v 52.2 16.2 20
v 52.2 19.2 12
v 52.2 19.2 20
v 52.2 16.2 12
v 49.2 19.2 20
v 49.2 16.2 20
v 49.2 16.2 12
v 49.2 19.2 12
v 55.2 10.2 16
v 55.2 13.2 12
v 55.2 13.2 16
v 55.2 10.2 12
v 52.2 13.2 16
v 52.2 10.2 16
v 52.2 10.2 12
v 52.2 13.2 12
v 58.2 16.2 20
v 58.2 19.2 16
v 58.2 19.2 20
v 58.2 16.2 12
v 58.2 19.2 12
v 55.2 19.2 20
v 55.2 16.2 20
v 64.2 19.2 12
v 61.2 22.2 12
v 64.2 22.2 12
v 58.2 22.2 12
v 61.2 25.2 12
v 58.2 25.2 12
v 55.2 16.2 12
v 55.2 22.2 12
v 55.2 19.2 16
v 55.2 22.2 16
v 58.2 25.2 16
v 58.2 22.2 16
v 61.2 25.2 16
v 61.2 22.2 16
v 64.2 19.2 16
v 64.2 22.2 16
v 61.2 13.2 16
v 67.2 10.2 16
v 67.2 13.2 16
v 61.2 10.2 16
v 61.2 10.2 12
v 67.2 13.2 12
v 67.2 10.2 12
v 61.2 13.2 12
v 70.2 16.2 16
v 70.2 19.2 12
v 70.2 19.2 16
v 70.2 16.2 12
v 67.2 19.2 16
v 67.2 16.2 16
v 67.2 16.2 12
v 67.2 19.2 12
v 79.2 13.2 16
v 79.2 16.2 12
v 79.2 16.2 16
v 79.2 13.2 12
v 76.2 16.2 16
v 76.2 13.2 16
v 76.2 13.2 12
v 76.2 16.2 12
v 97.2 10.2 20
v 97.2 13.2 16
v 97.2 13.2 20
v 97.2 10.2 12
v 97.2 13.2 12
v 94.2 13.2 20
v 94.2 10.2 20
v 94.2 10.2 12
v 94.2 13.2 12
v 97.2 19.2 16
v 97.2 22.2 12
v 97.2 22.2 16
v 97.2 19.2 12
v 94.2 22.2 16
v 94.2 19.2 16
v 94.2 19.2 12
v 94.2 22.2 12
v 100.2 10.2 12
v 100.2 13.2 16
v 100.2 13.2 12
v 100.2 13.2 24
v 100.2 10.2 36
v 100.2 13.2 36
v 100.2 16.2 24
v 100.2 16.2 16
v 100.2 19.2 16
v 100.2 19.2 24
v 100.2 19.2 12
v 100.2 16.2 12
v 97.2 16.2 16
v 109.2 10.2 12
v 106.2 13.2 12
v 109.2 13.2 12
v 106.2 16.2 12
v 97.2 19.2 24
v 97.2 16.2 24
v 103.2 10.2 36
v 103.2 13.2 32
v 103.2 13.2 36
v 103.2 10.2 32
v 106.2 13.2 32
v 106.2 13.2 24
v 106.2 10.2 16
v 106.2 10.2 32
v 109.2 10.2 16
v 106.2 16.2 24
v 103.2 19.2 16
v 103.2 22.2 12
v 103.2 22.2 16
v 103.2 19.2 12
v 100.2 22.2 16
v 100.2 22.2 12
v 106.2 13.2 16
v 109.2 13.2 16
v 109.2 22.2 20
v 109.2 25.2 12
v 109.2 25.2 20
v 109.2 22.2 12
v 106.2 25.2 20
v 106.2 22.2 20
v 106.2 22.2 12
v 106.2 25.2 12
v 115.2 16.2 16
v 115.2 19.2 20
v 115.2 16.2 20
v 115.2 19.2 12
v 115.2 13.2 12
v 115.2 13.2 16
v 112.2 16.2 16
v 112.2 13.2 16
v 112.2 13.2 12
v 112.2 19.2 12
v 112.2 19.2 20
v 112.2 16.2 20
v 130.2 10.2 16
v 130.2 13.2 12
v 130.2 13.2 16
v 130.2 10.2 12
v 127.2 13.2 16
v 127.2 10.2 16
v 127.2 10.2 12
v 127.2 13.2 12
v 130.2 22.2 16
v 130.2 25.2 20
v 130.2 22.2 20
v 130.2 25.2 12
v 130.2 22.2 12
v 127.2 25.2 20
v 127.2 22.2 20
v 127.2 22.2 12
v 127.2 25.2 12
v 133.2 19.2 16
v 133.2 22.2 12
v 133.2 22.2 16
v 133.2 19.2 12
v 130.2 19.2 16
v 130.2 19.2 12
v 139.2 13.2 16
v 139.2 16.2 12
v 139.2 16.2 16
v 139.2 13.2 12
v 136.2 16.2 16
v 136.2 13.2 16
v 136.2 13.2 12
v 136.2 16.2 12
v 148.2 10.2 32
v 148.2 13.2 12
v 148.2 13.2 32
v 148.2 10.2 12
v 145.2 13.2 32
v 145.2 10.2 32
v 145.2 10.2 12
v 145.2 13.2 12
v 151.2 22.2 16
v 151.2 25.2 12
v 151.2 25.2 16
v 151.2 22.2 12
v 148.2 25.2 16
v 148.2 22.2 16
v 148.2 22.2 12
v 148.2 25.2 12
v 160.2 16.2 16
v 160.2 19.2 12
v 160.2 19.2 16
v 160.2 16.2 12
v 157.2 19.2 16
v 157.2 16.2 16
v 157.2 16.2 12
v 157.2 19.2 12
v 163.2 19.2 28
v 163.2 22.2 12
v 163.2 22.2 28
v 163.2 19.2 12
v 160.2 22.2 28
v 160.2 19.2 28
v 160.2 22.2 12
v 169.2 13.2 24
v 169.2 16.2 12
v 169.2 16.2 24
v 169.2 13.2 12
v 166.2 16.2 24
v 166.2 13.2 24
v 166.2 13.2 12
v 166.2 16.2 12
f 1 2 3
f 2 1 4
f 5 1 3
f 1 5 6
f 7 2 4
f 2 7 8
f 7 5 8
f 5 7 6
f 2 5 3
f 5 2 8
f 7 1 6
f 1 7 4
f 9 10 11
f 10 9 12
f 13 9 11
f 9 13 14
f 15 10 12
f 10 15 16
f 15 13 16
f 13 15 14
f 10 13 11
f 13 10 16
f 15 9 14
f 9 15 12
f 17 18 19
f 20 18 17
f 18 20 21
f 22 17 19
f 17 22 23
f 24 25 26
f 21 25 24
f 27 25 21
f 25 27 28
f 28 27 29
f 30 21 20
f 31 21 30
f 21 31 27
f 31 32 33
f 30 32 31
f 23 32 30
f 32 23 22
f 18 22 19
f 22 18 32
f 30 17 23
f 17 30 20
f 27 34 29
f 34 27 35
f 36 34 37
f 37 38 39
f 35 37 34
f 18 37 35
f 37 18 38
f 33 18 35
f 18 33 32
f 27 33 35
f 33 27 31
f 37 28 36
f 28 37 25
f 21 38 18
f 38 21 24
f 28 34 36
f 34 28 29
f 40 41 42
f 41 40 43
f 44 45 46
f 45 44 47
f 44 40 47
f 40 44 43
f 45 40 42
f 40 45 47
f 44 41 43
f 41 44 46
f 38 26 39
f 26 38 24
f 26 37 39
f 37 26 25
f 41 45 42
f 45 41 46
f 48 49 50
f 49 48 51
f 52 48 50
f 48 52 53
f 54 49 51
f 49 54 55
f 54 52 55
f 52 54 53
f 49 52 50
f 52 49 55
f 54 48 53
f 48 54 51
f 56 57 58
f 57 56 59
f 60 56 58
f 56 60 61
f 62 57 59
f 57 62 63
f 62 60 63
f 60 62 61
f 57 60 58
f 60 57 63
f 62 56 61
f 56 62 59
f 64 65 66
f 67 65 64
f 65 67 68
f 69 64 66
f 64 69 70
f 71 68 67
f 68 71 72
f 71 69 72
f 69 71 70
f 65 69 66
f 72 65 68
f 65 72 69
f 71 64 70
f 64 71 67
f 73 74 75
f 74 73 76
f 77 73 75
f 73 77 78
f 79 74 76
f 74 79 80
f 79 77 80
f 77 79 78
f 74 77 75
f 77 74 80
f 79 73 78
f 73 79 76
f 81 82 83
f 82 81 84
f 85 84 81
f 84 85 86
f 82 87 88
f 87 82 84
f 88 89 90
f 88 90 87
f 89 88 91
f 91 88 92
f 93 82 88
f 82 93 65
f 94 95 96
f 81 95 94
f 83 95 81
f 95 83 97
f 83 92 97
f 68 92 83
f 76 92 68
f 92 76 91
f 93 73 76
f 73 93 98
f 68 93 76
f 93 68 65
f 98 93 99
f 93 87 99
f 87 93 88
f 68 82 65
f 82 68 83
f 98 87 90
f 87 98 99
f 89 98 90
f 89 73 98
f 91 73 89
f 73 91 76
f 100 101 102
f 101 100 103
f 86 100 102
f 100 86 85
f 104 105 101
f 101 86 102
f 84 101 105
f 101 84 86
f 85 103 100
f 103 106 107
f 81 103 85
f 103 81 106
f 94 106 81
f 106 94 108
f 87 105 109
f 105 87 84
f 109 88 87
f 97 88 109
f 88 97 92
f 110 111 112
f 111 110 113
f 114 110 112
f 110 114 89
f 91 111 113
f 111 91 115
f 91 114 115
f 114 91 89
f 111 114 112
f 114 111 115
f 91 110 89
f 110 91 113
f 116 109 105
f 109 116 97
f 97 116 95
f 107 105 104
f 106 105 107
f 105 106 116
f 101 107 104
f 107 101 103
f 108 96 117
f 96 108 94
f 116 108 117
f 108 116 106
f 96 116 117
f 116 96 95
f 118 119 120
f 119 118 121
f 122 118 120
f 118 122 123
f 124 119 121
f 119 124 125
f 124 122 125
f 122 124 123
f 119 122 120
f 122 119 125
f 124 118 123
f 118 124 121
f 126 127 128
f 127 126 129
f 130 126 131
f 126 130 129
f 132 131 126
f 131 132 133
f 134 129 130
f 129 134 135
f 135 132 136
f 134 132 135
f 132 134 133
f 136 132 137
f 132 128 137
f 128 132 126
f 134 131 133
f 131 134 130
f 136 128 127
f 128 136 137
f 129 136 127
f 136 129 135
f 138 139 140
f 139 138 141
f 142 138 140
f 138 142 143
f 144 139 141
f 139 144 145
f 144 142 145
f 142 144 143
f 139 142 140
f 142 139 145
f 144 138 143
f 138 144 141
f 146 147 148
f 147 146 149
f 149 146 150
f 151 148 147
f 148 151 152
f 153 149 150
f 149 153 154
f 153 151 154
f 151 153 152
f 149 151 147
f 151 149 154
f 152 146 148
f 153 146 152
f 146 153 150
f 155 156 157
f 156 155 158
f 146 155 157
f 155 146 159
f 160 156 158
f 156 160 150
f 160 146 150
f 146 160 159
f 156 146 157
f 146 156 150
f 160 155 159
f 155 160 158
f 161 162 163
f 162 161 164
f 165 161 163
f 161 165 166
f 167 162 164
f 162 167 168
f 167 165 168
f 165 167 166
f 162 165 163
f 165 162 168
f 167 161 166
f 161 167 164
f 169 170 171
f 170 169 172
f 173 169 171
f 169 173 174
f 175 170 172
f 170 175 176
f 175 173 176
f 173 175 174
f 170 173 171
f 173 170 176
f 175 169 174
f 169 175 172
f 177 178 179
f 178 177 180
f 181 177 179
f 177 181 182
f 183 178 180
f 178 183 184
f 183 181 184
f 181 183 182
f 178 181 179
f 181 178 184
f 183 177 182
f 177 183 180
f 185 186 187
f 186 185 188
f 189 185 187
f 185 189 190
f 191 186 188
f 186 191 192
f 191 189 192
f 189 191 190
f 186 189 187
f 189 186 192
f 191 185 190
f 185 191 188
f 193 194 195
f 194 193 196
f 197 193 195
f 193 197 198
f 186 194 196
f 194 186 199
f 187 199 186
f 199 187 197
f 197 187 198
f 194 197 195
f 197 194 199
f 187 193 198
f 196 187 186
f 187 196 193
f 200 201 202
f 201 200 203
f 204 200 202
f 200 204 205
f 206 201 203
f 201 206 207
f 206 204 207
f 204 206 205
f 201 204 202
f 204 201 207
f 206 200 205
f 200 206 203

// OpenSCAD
union() {
	translate(v = [49.2, 16.200000000000003, 12.0]) {
		cube(size = [3.0, 3.0, 8.0]);
	}
	translate(v = [52.2, 10.200000000000001, 12.0]) {
		cube(size = [3.0, 3.0, 4.0]);
	}
	translate(v = [55.2, 16.200000000000003, 12.0]) {
		cube(size = [3.0, 3.0, 8.0]);
	}
	translate(v = [55.2, 19.200000000000003, 12.0]) {
		cube(size = [3.0, 3.0, 4.0]);
	}
	translate(v = [58.2, 19.200000000000003, 12.0]) {
		cube(size = [3.0, 3.0, 4.0]);
	}
	translate(v = [58.2, 22.200000000000003, 12.0]) {
		cube(size = [3.0, 3.0, 4.0]);
	}
	translate(v = [61.2, 10.200000000000001, 12.0]) {
		cube(size = [3.0, 3.0, 4.0]);
	}
	translate(v = [61.2, 19.200000000000003, 12.0]) {
		cube(size = [3.0, 3.0, 4.0]);
	}
	translate(v = [64.2, 10.200000000000001, 12.0]) {
		cube(size = [3.0, 3.0, 4.0]);
	}
	translate(v = [67.2, 16.200000000000003, 12.0]) {
		cube(size = [3.0, 3.0, 4.0]);
	}
	translate(v = [76.2, 13.200000000000001, 12.0]) {
		cube(size = [3.0, 3.0, 4.0]);
	}
	translate(v = [94.2, 10.200000000000001, 12.0]) {
		cube(size = [3.0, 3.0, 8.0]);
	}
	translate(v = [94.2, 19.200000000000003, 12.0]) {
		cube(size = [3.0, 3.0, 4.0]);
	}
	translate(v = [97.2, 13.200000000000001, 12.0]) {
		cube(size = [3.0, 3.0, 4.0]);
	}
	translate(v = [97.2, 16.200000000000003, 12.0]) {
		cube(size = [3.0, 3.0, 12.0]);
	}
	translate(v = [100.2, 10.200000000000001, 12.0]) {
		cube(size = [3.0, 3.0, 24.0]);
	}
	translate(v = [100.2, 13.200000000000001, 12.0]) {
		cube(size = [3.0, 3.0, 12.0]);
	}
	translate(v = [100.2, 19.200000000000003, 12.0]) {
		cube(size = [3.0, 3.0, 4.0]);
	}
	translate(v = [103.2, 10.200000000000001, 12.0]) {
		cube(size = [3.0, 3.0, 20.0]);
	}
	translate(v = [103.2, 13.200000000000001, 12.0]) {
		cube(size = [3.0, 3.0, 12.0]);
	}
	translate(v = [106.2, 10.200000000000001, 12.0]) {
		cube(size = [3.0, 3.0, 4.0]);
	}
	translate(v = [106.2, 22.200000000000003, 12.0]) {
		cube(size = [3.0, 3.0, 8.0]);
	}
	translate(v = [112.2, 13.200000000000001, 12.0]) {
		cube(size = [3.0, 3.0, 4.0]);
	}
	translate(v = [112.2, 16.200000000000003, 12.0]) {
		cube(size = [3.0, 3.0, 8.0]);
	}
	translate(v = [127.2, 10.200000000000001, 12.0]) {
		cube(size = [3.0, 3.0, 4.0]);
	}
	translate(v = [127.2, 22.200000000000003, 12.0]) {
		cube(size = [3.0, 3.0, 8.0]);
	}
	translate(v = [130.2, 19.200000000000003, 12.0]) {
		cube(size = [3.0, 3.0, 4.0]);
	}
	translate(v = [136.2, 13.200000000000001, 12.0]) {
		cube(size = [3.0, 3.0, 4.0]);
	}
	translate(v = [145.2, 10.200000000000001, 12.0]) {
		cube(size = [3.0, 3.0, 20.0]);
	}
	translate(v = [148.2, 22.200000000000003, 12.0]) {
		cube(size = [3.0, 3.0, 4.0]);
	}
	translate(v = [157.2, 16.200000000000003, 12.0]) {
		cube(size = [3.0, 3.0, 4.0]);
	}
	translate(v = [160.2, 19.200000000000003, 12.0]) {
		cube(size = [3.0, 3.0, 16.0]);
	}
	translate(v = [166.2, 13.200000000000001, 12.0]) {
		cube(size = [3.0, 3.0, 12.0]);
	}
}
